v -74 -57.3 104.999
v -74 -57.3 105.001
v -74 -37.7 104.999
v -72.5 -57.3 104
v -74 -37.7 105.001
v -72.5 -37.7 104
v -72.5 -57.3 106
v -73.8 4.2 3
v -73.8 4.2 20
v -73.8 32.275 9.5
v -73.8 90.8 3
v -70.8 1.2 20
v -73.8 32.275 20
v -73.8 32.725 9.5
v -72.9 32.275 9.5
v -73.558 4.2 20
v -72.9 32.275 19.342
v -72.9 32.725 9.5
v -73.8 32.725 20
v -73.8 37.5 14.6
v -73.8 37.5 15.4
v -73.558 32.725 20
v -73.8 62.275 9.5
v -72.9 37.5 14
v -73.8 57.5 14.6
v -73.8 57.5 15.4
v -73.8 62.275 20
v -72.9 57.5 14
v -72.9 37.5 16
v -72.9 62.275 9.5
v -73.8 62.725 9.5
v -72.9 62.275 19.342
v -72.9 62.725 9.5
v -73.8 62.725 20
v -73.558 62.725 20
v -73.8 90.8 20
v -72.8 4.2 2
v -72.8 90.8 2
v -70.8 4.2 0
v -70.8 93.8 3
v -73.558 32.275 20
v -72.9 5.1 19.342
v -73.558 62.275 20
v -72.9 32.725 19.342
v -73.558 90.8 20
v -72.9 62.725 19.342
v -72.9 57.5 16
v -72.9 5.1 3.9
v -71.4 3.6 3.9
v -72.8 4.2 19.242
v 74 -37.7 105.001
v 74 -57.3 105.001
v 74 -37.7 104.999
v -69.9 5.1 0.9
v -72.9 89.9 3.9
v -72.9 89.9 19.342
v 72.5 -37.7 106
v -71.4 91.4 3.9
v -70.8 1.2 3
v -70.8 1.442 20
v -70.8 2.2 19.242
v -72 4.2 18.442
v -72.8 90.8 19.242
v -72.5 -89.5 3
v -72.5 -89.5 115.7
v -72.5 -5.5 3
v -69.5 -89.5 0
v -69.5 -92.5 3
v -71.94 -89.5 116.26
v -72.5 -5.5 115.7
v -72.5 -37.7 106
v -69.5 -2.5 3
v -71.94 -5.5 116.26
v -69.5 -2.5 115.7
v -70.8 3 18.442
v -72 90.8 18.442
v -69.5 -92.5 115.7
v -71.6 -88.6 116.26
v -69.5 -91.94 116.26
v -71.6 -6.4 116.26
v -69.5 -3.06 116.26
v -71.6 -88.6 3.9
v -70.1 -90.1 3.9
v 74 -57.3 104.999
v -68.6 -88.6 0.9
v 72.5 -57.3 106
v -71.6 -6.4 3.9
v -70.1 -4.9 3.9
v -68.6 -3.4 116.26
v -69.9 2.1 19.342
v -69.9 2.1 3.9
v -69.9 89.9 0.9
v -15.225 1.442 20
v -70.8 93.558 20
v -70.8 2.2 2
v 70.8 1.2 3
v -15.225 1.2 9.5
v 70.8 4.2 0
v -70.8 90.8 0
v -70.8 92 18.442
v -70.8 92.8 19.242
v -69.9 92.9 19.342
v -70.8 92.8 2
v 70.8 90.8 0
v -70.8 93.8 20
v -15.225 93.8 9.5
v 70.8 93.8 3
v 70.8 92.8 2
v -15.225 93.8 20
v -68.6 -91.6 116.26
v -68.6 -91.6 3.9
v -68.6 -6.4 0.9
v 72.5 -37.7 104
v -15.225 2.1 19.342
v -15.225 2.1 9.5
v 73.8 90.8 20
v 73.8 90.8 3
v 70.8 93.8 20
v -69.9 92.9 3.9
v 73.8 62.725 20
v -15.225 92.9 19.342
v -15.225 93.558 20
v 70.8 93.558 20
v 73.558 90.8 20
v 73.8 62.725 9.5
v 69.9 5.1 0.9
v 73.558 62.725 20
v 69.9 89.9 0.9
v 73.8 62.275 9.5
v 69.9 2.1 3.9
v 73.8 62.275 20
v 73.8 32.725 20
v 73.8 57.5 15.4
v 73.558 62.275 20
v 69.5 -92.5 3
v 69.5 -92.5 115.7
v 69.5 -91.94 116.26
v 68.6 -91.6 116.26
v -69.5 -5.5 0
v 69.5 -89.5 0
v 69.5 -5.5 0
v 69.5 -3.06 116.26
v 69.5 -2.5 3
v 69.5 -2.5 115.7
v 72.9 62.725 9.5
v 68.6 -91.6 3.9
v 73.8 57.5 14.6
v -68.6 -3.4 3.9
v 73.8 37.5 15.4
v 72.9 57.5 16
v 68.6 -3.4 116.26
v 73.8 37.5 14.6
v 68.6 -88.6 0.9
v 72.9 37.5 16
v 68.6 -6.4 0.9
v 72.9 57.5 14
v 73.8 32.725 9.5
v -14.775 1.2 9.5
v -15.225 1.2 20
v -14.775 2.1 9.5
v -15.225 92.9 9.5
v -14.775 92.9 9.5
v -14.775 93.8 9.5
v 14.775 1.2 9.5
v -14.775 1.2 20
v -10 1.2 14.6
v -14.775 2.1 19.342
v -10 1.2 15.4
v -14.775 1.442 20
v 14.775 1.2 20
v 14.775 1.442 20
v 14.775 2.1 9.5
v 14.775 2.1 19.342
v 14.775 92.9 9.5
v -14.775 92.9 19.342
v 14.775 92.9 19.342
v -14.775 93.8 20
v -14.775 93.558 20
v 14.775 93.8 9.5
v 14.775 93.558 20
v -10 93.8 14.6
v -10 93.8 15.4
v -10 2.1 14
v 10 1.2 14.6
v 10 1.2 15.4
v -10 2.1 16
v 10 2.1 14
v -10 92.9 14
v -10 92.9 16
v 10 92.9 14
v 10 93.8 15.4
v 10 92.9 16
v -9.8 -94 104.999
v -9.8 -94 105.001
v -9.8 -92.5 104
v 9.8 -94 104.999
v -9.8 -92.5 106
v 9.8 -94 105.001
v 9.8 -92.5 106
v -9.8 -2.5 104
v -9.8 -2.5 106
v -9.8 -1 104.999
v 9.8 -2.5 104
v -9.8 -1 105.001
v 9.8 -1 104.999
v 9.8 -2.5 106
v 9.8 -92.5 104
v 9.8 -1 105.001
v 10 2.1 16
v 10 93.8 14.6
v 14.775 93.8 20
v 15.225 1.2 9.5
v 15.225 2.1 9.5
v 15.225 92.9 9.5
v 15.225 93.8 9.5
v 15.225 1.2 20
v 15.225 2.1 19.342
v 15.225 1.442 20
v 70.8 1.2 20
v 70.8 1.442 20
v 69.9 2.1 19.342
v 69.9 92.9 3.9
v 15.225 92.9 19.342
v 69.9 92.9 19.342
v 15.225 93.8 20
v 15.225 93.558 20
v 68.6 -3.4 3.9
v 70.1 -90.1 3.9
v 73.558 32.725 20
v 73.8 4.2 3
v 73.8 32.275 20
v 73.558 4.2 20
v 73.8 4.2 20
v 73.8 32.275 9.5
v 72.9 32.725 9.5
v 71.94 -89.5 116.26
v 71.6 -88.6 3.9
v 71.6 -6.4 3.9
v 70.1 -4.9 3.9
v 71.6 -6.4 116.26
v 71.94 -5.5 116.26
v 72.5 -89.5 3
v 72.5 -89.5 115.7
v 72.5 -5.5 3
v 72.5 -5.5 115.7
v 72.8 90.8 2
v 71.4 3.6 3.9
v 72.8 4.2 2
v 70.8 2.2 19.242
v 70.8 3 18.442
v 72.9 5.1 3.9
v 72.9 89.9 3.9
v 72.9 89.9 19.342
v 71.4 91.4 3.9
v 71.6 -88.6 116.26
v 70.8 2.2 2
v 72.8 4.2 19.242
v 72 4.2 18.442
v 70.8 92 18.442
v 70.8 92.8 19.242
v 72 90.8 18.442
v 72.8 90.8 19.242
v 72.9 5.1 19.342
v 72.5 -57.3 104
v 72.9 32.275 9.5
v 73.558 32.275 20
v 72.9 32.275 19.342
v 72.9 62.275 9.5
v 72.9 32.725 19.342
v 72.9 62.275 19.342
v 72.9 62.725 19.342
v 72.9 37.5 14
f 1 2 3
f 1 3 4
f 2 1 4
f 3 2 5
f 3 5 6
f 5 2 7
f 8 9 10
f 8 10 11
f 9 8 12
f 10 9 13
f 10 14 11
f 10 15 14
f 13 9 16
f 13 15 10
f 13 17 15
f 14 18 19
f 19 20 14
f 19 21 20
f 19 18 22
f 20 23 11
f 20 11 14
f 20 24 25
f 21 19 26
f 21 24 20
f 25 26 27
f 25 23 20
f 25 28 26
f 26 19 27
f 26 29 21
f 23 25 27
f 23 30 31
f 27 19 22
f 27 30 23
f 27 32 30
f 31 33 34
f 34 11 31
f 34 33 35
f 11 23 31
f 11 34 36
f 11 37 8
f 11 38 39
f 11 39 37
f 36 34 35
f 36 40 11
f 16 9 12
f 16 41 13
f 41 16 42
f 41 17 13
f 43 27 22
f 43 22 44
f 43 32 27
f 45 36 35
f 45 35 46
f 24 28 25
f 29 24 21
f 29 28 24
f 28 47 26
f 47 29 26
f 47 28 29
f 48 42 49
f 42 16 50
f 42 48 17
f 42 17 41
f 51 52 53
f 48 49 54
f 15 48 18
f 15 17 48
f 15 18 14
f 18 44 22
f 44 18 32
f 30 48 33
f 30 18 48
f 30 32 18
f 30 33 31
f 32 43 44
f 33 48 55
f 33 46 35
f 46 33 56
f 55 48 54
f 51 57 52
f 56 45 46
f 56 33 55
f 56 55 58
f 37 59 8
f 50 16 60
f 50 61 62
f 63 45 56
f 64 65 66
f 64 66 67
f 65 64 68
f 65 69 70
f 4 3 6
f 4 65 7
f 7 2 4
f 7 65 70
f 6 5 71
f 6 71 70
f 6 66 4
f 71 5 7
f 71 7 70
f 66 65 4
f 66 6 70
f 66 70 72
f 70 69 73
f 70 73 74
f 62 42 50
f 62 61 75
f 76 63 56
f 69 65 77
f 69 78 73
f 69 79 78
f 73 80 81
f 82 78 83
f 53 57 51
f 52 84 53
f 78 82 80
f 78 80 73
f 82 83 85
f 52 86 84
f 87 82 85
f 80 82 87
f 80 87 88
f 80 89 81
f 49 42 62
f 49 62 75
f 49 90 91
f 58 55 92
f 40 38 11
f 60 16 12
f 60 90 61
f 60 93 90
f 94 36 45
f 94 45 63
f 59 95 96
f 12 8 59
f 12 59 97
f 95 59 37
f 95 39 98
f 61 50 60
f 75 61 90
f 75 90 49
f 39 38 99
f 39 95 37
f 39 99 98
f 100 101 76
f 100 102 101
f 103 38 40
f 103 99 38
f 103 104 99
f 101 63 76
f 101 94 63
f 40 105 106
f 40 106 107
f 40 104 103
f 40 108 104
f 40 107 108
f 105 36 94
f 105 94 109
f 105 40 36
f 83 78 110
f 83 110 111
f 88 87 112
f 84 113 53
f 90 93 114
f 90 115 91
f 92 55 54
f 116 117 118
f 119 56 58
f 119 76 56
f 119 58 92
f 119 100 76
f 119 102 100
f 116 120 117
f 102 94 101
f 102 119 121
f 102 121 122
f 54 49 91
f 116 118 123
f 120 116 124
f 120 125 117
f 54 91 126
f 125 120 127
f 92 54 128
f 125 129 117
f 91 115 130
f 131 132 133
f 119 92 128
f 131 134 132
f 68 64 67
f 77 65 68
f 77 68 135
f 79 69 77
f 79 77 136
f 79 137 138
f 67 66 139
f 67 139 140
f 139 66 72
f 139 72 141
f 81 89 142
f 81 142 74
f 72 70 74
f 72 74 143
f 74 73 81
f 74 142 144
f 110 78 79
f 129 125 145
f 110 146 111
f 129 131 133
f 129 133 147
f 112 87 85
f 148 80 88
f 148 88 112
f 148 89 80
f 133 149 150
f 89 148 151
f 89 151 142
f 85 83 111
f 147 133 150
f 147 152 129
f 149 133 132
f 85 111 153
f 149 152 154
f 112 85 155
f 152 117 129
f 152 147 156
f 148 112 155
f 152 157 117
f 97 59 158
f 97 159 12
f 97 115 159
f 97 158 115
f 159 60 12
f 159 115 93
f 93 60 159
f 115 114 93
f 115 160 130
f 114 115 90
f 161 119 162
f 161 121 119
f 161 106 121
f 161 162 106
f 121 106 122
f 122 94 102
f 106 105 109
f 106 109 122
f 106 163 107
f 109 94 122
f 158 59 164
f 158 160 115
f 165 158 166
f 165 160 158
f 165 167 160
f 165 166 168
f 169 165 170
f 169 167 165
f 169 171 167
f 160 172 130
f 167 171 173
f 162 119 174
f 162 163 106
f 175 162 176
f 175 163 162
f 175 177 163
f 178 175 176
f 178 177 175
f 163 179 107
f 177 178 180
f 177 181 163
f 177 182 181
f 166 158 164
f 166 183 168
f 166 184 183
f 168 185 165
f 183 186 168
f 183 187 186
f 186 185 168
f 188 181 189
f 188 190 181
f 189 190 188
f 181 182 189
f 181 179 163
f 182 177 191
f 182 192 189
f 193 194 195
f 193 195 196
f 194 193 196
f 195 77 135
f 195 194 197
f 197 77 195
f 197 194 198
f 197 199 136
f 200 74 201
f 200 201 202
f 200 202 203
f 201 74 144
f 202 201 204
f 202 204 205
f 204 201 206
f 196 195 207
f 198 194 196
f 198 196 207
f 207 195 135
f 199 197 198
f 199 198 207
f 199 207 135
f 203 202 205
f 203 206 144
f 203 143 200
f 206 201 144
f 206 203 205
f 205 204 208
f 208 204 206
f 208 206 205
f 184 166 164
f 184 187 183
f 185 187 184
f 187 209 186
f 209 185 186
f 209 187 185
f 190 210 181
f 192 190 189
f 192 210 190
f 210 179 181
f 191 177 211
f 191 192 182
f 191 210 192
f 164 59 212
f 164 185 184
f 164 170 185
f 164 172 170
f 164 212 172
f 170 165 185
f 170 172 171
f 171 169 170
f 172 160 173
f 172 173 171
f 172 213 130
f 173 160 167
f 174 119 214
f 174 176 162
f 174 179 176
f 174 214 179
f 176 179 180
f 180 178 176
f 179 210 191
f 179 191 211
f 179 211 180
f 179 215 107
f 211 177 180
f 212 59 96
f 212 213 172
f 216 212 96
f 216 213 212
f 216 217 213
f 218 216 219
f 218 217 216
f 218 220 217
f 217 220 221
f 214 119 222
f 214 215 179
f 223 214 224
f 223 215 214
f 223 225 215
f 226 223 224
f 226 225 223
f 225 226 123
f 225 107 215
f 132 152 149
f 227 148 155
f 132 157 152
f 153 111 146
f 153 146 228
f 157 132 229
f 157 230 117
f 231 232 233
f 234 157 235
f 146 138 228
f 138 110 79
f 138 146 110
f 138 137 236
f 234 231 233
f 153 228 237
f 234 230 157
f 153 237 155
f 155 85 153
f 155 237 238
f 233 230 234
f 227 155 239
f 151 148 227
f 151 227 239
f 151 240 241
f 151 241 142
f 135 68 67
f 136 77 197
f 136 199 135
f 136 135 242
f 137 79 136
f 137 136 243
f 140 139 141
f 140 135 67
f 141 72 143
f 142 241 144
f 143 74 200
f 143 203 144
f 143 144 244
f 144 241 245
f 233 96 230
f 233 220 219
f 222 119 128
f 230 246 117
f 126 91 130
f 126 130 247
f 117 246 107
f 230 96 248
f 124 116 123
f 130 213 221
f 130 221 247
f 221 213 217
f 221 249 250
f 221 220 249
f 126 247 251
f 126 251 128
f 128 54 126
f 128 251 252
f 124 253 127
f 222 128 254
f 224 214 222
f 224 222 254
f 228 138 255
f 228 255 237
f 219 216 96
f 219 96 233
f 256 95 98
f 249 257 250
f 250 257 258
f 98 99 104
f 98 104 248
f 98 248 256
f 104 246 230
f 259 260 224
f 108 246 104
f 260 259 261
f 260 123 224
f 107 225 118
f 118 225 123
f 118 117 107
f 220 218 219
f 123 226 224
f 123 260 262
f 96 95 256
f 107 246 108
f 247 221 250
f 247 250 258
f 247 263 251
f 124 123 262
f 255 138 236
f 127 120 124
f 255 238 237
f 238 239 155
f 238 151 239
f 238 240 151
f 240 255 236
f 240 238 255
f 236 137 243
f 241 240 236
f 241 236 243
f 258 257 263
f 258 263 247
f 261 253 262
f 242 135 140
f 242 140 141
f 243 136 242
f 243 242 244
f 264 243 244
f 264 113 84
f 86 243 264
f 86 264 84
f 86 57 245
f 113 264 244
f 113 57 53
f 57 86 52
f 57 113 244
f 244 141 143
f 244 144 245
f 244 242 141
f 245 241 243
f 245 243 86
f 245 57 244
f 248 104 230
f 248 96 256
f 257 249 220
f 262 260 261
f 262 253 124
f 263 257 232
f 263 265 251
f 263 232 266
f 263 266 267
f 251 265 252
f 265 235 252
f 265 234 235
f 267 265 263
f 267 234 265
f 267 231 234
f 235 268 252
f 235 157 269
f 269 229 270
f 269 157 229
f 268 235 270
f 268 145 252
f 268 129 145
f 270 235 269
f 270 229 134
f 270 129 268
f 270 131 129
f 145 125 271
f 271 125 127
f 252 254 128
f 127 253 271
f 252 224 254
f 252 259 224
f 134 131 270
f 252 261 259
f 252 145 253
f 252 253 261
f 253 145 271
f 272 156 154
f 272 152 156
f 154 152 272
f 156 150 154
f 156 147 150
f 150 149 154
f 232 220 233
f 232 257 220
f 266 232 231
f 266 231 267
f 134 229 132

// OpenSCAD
include <BOSL/constants.scad>
use <BOSL/transforms.scad>
use <BOSL/shapes.scad>
// use <BOSL/masks.scad>
use <BOSL/math.scad>

lh=0.3;
lw=0.45;

w=145;
d=90;
h=120;
th=lw*2;

lid_h=20;
tab_w=20;
cl=0.4;

// box_assembly();
ydistribute(spacing=d+5) {
  box();
  lid();
}

module box_assembly() {
  box();
  zmove(h) xrot(180) lid();
}

module box() {
  bottom_half(s=w*2,z=h-th-cl-(3+th/2)*cos(45)) union() {
    difference() {
      cuboid([w,d,h-th-cl],chamfer=3,edges=EDGES_ALL,align=V_TOP);
      zmove(th) cuboid([w-2*th,d-2*th,h],chamfer=3,edges=EDGES_Z_ALL+EDGES_BOTTOM,align=V_TOP);
    }
    for(i=array_zip([w/2,d/2,w/2,d/2],[for(i=[0:90:270]) i]))
      zmove(h-15) rotate(i[1]) translate([i[0],0]) yrot(90) prismoid(size1=[2,tab_w-cl], size2=[0,tab_w-cl], h=1.5, align=V_TOP);
  }
}

module lid() {
  difference() {
    cuboid([w+2*th+2*cl,d+2*th+2*cl,20],chamfer=3,edges=EDGES_Z_ALL+EDGES_BOTTOM,align=V_TOP);
    zmove(th) cuboid([w+2*cl,d+2*cl,h],chamfer=3,edges=EDGES_Z_ALL+EDGES_BOTTOM,align=V_TOP);
    for(i=array_zip([w/2,d/2,w/2,d/2],[for(i=[0:90:270]) i])) {
      zmove(15) rotate(i[1]) translate([i[0]+cl,0]) {
        yrot(90) prismoid(size1=[2,tab_w], size2=[0,tab_w], h=1.5, align=V_TOP);
        yspread(n=2,l=tab_w*1.5) cuboid([th*3,lw,11]);
      }
    }
    zmove(20-(3+th)*cos(45)) cuboid([w+2*th+2*cl,d+2*th+2*cl,20],chamfer=3,edges=EDGES_Z_ALL+EDGES_BOTTOM,align=V_TOP);
  }
}
